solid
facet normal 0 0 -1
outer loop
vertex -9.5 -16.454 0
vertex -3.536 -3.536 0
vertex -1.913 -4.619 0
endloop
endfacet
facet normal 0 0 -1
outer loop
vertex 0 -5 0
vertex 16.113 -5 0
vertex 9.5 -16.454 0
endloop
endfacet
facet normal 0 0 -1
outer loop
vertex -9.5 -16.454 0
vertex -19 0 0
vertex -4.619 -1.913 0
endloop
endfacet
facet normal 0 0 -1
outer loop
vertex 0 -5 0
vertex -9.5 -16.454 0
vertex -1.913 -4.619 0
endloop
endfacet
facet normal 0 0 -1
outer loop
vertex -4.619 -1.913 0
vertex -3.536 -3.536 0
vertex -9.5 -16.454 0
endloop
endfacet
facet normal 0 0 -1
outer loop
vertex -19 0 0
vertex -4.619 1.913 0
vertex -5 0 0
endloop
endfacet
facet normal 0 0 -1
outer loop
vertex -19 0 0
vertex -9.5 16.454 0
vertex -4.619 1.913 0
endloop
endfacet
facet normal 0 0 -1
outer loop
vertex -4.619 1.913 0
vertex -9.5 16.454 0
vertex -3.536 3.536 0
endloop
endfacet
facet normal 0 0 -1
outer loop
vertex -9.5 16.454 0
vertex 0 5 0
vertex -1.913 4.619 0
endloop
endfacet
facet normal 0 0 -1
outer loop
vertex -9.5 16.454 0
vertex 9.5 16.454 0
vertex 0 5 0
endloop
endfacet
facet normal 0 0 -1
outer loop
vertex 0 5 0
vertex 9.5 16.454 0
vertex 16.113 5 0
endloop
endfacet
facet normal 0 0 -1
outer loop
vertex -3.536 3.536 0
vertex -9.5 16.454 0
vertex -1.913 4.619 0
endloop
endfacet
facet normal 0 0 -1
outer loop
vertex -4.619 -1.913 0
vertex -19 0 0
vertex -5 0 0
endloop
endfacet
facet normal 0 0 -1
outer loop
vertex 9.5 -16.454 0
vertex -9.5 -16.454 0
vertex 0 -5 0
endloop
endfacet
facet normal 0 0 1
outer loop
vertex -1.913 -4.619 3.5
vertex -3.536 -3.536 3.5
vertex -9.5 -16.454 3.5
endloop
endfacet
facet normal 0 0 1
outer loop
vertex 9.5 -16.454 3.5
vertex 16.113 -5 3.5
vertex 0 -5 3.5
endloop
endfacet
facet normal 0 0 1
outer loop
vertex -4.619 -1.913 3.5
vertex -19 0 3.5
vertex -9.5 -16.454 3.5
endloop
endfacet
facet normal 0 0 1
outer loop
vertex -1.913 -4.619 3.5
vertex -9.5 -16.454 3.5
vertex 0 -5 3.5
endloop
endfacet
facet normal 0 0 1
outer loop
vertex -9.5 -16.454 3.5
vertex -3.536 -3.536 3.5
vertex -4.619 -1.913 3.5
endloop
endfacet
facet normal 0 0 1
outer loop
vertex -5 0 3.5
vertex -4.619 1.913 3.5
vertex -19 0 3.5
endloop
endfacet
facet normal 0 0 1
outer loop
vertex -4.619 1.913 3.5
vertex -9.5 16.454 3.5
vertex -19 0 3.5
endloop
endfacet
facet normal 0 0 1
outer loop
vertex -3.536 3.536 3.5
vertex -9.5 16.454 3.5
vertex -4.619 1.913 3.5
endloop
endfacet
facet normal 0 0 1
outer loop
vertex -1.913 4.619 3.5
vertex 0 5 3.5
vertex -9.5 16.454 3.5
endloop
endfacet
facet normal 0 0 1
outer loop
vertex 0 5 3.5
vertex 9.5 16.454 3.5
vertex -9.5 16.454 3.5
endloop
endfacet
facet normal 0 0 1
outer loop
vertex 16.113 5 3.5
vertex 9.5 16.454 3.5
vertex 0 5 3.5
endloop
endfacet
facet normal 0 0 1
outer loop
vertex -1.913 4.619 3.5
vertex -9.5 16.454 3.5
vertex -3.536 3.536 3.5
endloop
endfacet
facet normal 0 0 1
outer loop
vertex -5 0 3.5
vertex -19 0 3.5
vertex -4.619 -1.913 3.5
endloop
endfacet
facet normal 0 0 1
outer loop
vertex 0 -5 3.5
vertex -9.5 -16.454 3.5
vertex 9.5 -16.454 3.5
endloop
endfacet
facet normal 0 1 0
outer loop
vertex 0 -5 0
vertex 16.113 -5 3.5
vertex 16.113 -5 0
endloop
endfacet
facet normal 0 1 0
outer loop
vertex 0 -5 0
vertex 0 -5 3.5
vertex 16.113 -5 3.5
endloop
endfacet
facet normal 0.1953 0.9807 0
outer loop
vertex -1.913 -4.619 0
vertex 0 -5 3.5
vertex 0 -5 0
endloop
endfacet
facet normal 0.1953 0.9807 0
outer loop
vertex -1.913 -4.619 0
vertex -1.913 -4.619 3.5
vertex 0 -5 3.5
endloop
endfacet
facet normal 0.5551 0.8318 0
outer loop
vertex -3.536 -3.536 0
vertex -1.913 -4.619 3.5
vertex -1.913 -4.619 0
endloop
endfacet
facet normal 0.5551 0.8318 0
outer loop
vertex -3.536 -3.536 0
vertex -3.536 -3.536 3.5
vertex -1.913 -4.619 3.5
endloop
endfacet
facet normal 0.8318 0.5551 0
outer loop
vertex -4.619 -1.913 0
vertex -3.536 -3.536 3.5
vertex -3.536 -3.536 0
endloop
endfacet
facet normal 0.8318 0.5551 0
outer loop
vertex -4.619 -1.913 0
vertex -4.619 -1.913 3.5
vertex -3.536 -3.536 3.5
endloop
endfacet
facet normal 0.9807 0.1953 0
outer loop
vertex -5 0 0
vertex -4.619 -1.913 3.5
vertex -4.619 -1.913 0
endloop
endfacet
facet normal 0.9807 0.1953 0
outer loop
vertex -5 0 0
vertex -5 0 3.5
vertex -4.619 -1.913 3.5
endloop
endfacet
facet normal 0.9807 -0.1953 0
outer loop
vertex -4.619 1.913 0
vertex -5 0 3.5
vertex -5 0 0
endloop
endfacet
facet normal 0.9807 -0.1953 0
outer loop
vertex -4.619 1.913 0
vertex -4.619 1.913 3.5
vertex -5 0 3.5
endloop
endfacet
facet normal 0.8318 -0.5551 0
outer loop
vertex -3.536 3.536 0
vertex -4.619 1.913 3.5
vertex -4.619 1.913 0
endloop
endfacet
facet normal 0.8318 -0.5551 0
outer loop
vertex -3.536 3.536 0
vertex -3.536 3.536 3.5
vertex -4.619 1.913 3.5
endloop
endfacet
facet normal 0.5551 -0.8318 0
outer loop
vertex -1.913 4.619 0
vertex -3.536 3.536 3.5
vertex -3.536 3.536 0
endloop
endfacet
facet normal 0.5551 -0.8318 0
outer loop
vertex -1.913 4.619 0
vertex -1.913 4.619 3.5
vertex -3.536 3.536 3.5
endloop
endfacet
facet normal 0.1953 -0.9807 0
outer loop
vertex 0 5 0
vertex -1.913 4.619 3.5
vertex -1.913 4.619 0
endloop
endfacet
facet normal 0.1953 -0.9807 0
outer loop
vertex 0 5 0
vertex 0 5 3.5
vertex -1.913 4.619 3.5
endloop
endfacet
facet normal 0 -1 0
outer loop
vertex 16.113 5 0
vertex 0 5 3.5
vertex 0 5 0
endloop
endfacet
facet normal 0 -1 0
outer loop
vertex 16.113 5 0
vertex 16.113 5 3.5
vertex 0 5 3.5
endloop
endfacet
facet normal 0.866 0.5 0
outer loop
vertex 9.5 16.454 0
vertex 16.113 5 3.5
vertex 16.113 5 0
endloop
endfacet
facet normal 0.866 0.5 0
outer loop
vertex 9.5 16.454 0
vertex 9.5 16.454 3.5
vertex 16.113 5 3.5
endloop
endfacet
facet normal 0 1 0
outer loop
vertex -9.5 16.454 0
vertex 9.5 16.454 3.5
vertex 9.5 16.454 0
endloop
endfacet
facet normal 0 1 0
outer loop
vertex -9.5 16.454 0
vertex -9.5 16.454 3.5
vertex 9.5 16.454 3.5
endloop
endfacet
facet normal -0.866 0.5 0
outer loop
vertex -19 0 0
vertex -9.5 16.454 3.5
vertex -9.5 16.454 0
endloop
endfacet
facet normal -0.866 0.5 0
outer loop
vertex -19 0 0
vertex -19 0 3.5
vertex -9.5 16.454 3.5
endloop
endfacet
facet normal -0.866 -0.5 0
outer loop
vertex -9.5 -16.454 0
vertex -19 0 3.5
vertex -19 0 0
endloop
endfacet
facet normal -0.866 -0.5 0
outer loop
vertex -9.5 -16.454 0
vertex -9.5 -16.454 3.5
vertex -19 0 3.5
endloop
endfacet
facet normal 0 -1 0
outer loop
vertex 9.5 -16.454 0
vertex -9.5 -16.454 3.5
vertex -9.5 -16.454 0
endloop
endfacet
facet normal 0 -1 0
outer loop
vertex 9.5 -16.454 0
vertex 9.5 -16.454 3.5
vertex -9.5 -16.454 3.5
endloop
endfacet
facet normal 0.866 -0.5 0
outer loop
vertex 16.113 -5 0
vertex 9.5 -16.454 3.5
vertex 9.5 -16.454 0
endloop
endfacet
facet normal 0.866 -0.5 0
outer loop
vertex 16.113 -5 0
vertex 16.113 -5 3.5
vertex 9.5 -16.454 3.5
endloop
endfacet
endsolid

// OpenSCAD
// file: mcad/units.scad
/*
 * Basic units.
 *
 * Originally by Hans Häggström, 2010.
 * Dual licenced under Creative Commons Attribution-Share Alike 3.0 and LGPL2 or later
 */


mm = 1;
cm = 10 * mm;
dm = 100 * mm;
m = 1000 * mm;

inch = 25.4 * mm;

X = [1, 0, 0];
Y = [0, 1, 0];
Z = [0, 0, 1];

M3 = 3*mm;
M4 = 4*mm;
M5 = 5*mm;
M6 = 6*mm;
M8 = 8*mm;


// When a small distance is needed to overlap shapes for boolean cutting, etc.
epsilon = 0.01*mm;

phi=0.5*(sqrt(5) + 1 );
// main file
// Hexagonal washer for a lamp. The threaded pipe goes into the middle.
include <mcad/units.scad>;
D = 38*mm;
d = 10*mm;
h = 3.5*mm;
linear_extrude(h) difference() {
    circle(d=D, $fn=6);
    circle(d=d);
    translate([0, -d/2]) square([2*d, d]);
}
